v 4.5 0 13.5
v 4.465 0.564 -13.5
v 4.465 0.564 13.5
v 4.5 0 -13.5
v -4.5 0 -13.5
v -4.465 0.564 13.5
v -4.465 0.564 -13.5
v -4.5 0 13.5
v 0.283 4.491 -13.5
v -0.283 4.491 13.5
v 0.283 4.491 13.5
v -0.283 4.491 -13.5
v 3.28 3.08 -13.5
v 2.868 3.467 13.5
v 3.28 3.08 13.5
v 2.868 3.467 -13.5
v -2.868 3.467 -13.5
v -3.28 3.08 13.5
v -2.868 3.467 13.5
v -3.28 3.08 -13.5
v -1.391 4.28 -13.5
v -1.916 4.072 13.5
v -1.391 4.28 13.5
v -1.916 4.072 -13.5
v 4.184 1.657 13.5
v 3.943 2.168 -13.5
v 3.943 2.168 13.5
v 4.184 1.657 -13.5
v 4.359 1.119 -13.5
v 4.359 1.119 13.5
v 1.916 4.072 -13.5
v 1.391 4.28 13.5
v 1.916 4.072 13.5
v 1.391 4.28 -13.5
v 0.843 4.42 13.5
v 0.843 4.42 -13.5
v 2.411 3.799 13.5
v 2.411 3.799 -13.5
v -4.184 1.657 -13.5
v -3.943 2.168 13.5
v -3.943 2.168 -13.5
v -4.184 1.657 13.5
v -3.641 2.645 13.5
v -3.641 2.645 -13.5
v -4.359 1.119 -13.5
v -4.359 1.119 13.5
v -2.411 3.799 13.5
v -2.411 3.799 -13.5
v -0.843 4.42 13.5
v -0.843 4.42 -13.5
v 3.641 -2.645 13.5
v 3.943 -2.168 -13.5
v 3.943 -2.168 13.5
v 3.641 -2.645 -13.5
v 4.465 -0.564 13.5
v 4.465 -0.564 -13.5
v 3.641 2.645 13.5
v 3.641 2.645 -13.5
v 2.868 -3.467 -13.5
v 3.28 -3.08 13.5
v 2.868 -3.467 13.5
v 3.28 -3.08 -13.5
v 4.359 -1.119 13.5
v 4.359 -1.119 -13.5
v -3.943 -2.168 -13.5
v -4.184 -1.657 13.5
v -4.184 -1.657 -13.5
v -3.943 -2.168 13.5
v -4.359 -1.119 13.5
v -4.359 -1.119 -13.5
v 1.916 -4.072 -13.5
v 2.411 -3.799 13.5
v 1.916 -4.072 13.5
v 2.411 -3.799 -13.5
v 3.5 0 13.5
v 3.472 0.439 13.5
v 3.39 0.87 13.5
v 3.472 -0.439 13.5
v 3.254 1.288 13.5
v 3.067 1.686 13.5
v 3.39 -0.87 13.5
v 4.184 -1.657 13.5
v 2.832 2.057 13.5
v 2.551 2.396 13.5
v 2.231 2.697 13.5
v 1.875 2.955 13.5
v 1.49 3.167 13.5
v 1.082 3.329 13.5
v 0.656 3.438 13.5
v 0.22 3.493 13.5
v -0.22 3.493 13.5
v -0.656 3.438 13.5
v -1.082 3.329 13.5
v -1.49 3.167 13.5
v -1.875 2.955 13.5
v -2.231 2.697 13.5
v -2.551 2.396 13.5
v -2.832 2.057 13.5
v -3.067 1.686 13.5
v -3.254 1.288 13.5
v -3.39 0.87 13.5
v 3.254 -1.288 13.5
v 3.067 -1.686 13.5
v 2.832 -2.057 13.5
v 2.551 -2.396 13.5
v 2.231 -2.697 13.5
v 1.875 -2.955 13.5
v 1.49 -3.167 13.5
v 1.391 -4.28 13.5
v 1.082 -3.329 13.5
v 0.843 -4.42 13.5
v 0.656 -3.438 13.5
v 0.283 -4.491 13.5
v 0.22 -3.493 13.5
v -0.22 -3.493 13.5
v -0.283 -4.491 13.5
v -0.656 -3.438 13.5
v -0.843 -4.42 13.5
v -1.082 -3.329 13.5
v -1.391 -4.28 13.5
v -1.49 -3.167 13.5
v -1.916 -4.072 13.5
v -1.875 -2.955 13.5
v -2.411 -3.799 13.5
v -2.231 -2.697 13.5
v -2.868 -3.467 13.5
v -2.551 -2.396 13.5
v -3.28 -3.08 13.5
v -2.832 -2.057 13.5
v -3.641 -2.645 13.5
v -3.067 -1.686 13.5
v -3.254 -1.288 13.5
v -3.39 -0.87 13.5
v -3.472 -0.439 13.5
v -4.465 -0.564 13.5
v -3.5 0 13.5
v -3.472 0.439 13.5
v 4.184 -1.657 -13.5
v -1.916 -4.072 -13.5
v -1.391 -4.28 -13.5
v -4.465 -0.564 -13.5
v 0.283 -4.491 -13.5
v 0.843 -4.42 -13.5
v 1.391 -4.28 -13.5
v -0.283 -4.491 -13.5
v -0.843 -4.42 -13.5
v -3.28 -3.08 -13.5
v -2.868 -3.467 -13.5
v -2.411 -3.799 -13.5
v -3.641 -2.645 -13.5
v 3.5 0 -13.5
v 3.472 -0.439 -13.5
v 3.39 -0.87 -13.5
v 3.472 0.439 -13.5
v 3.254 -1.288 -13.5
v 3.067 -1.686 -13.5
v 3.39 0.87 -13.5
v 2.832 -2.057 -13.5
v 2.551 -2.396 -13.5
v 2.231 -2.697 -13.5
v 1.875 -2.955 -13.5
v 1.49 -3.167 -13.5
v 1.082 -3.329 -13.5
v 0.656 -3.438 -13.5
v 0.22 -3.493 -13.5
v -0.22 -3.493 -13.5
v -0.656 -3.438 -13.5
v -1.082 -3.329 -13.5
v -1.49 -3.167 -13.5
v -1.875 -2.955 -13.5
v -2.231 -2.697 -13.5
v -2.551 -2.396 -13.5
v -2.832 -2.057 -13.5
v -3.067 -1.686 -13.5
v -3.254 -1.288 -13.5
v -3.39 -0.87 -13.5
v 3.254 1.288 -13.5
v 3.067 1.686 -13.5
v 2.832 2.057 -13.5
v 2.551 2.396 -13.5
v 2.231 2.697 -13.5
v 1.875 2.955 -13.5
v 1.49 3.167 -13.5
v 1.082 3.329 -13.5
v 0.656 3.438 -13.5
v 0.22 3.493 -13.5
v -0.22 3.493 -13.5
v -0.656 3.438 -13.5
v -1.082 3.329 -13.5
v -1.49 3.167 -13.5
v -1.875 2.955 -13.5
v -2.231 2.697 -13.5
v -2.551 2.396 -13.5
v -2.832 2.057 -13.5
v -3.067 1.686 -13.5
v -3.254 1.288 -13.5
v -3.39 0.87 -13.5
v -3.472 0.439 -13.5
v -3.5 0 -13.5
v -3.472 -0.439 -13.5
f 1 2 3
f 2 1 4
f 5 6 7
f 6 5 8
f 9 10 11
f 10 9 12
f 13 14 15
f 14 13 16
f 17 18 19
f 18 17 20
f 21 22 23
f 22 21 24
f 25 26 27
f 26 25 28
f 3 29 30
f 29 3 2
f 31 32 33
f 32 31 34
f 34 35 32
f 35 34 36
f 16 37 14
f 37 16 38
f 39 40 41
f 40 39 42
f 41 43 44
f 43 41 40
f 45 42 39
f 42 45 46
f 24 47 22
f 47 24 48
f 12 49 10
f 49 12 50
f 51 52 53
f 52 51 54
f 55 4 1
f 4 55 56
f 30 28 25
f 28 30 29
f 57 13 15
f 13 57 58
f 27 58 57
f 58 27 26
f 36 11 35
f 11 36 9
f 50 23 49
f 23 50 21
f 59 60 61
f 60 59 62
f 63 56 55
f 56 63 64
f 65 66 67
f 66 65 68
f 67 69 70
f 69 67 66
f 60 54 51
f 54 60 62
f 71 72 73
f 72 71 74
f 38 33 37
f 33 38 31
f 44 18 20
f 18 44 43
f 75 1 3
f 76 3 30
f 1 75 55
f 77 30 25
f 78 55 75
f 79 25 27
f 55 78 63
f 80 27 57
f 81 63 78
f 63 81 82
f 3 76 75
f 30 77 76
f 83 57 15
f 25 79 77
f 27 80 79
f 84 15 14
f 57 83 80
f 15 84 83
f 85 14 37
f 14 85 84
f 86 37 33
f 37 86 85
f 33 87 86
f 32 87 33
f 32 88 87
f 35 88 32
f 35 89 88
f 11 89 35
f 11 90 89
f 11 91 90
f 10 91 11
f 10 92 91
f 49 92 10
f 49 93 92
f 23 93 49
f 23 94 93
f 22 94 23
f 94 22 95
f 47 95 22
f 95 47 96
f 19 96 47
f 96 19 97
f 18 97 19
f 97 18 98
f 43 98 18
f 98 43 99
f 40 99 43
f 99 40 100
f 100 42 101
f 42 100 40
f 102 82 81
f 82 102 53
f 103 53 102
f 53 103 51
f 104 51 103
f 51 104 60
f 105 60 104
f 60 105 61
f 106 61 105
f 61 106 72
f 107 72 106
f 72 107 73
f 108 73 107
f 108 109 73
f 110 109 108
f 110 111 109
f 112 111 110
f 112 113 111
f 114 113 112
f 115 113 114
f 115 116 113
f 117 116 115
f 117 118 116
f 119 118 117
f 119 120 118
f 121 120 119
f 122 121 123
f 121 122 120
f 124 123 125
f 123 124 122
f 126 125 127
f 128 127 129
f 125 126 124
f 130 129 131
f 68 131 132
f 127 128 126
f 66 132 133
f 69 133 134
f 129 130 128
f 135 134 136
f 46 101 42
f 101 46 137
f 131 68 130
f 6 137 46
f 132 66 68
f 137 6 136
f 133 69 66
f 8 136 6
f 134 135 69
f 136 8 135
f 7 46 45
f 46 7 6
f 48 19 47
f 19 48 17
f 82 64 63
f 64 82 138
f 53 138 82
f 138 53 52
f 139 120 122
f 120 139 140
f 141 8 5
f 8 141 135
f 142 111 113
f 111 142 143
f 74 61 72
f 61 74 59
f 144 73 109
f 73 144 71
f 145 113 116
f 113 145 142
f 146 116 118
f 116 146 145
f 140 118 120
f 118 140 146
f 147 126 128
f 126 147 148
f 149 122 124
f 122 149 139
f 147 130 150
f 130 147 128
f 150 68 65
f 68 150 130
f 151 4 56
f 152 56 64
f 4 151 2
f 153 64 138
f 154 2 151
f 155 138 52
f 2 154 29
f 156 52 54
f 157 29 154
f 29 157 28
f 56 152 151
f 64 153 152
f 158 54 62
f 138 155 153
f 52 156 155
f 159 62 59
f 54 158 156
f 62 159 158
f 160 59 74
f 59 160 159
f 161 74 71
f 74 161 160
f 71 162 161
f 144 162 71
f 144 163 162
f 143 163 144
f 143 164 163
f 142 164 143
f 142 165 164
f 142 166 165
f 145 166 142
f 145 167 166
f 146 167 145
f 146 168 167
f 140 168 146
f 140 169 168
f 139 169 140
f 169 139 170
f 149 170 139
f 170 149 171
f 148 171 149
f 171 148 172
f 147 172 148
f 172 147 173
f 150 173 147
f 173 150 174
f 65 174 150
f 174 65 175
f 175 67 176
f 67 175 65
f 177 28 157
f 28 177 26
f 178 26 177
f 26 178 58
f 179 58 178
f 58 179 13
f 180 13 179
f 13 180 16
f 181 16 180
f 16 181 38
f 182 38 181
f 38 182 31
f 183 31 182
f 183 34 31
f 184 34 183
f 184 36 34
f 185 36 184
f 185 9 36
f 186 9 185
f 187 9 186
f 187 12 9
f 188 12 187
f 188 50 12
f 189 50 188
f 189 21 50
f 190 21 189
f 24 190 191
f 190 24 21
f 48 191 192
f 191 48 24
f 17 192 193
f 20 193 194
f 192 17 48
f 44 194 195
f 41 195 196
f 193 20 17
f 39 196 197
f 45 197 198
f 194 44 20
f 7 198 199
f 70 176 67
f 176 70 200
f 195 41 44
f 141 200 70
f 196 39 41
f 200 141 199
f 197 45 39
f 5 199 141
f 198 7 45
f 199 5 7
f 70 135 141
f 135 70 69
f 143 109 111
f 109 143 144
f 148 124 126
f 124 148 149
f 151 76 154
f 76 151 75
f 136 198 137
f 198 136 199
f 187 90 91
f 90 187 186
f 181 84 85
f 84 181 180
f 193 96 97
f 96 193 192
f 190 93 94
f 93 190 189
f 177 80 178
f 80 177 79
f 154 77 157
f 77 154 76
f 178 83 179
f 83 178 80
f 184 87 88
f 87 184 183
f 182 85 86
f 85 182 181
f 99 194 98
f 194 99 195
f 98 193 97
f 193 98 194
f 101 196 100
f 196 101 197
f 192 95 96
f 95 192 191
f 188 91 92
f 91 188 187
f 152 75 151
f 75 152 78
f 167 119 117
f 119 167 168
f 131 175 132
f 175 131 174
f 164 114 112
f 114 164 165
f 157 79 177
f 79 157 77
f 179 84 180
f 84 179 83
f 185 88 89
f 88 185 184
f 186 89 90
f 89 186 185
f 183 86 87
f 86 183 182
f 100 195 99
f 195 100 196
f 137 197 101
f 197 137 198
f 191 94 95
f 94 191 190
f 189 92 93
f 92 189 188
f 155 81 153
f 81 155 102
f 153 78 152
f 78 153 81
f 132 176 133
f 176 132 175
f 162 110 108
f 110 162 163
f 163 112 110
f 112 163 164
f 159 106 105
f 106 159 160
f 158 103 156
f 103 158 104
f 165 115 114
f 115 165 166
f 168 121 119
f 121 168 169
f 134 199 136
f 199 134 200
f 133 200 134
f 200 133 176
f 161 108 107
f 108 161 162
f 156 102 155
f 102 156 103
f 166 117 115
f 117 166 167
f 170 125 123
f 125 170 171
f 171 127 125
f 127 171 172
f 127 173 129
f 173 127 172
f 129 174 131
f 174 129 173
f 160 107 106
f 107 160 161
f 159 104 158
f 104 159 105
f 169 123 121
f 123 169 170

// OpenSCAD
$fn = 50;


difference() {
	union() {
		translate(v = [0, 0, -13.5000000000]) {
			cylinder(h = 27, r = 4.5000000000);
		}
	}
	union() {
		translate(v = [0, 0, -100.0000000000]) {
			cylinder(h = 200, r = 3.5000000000);
		}
	}
}
